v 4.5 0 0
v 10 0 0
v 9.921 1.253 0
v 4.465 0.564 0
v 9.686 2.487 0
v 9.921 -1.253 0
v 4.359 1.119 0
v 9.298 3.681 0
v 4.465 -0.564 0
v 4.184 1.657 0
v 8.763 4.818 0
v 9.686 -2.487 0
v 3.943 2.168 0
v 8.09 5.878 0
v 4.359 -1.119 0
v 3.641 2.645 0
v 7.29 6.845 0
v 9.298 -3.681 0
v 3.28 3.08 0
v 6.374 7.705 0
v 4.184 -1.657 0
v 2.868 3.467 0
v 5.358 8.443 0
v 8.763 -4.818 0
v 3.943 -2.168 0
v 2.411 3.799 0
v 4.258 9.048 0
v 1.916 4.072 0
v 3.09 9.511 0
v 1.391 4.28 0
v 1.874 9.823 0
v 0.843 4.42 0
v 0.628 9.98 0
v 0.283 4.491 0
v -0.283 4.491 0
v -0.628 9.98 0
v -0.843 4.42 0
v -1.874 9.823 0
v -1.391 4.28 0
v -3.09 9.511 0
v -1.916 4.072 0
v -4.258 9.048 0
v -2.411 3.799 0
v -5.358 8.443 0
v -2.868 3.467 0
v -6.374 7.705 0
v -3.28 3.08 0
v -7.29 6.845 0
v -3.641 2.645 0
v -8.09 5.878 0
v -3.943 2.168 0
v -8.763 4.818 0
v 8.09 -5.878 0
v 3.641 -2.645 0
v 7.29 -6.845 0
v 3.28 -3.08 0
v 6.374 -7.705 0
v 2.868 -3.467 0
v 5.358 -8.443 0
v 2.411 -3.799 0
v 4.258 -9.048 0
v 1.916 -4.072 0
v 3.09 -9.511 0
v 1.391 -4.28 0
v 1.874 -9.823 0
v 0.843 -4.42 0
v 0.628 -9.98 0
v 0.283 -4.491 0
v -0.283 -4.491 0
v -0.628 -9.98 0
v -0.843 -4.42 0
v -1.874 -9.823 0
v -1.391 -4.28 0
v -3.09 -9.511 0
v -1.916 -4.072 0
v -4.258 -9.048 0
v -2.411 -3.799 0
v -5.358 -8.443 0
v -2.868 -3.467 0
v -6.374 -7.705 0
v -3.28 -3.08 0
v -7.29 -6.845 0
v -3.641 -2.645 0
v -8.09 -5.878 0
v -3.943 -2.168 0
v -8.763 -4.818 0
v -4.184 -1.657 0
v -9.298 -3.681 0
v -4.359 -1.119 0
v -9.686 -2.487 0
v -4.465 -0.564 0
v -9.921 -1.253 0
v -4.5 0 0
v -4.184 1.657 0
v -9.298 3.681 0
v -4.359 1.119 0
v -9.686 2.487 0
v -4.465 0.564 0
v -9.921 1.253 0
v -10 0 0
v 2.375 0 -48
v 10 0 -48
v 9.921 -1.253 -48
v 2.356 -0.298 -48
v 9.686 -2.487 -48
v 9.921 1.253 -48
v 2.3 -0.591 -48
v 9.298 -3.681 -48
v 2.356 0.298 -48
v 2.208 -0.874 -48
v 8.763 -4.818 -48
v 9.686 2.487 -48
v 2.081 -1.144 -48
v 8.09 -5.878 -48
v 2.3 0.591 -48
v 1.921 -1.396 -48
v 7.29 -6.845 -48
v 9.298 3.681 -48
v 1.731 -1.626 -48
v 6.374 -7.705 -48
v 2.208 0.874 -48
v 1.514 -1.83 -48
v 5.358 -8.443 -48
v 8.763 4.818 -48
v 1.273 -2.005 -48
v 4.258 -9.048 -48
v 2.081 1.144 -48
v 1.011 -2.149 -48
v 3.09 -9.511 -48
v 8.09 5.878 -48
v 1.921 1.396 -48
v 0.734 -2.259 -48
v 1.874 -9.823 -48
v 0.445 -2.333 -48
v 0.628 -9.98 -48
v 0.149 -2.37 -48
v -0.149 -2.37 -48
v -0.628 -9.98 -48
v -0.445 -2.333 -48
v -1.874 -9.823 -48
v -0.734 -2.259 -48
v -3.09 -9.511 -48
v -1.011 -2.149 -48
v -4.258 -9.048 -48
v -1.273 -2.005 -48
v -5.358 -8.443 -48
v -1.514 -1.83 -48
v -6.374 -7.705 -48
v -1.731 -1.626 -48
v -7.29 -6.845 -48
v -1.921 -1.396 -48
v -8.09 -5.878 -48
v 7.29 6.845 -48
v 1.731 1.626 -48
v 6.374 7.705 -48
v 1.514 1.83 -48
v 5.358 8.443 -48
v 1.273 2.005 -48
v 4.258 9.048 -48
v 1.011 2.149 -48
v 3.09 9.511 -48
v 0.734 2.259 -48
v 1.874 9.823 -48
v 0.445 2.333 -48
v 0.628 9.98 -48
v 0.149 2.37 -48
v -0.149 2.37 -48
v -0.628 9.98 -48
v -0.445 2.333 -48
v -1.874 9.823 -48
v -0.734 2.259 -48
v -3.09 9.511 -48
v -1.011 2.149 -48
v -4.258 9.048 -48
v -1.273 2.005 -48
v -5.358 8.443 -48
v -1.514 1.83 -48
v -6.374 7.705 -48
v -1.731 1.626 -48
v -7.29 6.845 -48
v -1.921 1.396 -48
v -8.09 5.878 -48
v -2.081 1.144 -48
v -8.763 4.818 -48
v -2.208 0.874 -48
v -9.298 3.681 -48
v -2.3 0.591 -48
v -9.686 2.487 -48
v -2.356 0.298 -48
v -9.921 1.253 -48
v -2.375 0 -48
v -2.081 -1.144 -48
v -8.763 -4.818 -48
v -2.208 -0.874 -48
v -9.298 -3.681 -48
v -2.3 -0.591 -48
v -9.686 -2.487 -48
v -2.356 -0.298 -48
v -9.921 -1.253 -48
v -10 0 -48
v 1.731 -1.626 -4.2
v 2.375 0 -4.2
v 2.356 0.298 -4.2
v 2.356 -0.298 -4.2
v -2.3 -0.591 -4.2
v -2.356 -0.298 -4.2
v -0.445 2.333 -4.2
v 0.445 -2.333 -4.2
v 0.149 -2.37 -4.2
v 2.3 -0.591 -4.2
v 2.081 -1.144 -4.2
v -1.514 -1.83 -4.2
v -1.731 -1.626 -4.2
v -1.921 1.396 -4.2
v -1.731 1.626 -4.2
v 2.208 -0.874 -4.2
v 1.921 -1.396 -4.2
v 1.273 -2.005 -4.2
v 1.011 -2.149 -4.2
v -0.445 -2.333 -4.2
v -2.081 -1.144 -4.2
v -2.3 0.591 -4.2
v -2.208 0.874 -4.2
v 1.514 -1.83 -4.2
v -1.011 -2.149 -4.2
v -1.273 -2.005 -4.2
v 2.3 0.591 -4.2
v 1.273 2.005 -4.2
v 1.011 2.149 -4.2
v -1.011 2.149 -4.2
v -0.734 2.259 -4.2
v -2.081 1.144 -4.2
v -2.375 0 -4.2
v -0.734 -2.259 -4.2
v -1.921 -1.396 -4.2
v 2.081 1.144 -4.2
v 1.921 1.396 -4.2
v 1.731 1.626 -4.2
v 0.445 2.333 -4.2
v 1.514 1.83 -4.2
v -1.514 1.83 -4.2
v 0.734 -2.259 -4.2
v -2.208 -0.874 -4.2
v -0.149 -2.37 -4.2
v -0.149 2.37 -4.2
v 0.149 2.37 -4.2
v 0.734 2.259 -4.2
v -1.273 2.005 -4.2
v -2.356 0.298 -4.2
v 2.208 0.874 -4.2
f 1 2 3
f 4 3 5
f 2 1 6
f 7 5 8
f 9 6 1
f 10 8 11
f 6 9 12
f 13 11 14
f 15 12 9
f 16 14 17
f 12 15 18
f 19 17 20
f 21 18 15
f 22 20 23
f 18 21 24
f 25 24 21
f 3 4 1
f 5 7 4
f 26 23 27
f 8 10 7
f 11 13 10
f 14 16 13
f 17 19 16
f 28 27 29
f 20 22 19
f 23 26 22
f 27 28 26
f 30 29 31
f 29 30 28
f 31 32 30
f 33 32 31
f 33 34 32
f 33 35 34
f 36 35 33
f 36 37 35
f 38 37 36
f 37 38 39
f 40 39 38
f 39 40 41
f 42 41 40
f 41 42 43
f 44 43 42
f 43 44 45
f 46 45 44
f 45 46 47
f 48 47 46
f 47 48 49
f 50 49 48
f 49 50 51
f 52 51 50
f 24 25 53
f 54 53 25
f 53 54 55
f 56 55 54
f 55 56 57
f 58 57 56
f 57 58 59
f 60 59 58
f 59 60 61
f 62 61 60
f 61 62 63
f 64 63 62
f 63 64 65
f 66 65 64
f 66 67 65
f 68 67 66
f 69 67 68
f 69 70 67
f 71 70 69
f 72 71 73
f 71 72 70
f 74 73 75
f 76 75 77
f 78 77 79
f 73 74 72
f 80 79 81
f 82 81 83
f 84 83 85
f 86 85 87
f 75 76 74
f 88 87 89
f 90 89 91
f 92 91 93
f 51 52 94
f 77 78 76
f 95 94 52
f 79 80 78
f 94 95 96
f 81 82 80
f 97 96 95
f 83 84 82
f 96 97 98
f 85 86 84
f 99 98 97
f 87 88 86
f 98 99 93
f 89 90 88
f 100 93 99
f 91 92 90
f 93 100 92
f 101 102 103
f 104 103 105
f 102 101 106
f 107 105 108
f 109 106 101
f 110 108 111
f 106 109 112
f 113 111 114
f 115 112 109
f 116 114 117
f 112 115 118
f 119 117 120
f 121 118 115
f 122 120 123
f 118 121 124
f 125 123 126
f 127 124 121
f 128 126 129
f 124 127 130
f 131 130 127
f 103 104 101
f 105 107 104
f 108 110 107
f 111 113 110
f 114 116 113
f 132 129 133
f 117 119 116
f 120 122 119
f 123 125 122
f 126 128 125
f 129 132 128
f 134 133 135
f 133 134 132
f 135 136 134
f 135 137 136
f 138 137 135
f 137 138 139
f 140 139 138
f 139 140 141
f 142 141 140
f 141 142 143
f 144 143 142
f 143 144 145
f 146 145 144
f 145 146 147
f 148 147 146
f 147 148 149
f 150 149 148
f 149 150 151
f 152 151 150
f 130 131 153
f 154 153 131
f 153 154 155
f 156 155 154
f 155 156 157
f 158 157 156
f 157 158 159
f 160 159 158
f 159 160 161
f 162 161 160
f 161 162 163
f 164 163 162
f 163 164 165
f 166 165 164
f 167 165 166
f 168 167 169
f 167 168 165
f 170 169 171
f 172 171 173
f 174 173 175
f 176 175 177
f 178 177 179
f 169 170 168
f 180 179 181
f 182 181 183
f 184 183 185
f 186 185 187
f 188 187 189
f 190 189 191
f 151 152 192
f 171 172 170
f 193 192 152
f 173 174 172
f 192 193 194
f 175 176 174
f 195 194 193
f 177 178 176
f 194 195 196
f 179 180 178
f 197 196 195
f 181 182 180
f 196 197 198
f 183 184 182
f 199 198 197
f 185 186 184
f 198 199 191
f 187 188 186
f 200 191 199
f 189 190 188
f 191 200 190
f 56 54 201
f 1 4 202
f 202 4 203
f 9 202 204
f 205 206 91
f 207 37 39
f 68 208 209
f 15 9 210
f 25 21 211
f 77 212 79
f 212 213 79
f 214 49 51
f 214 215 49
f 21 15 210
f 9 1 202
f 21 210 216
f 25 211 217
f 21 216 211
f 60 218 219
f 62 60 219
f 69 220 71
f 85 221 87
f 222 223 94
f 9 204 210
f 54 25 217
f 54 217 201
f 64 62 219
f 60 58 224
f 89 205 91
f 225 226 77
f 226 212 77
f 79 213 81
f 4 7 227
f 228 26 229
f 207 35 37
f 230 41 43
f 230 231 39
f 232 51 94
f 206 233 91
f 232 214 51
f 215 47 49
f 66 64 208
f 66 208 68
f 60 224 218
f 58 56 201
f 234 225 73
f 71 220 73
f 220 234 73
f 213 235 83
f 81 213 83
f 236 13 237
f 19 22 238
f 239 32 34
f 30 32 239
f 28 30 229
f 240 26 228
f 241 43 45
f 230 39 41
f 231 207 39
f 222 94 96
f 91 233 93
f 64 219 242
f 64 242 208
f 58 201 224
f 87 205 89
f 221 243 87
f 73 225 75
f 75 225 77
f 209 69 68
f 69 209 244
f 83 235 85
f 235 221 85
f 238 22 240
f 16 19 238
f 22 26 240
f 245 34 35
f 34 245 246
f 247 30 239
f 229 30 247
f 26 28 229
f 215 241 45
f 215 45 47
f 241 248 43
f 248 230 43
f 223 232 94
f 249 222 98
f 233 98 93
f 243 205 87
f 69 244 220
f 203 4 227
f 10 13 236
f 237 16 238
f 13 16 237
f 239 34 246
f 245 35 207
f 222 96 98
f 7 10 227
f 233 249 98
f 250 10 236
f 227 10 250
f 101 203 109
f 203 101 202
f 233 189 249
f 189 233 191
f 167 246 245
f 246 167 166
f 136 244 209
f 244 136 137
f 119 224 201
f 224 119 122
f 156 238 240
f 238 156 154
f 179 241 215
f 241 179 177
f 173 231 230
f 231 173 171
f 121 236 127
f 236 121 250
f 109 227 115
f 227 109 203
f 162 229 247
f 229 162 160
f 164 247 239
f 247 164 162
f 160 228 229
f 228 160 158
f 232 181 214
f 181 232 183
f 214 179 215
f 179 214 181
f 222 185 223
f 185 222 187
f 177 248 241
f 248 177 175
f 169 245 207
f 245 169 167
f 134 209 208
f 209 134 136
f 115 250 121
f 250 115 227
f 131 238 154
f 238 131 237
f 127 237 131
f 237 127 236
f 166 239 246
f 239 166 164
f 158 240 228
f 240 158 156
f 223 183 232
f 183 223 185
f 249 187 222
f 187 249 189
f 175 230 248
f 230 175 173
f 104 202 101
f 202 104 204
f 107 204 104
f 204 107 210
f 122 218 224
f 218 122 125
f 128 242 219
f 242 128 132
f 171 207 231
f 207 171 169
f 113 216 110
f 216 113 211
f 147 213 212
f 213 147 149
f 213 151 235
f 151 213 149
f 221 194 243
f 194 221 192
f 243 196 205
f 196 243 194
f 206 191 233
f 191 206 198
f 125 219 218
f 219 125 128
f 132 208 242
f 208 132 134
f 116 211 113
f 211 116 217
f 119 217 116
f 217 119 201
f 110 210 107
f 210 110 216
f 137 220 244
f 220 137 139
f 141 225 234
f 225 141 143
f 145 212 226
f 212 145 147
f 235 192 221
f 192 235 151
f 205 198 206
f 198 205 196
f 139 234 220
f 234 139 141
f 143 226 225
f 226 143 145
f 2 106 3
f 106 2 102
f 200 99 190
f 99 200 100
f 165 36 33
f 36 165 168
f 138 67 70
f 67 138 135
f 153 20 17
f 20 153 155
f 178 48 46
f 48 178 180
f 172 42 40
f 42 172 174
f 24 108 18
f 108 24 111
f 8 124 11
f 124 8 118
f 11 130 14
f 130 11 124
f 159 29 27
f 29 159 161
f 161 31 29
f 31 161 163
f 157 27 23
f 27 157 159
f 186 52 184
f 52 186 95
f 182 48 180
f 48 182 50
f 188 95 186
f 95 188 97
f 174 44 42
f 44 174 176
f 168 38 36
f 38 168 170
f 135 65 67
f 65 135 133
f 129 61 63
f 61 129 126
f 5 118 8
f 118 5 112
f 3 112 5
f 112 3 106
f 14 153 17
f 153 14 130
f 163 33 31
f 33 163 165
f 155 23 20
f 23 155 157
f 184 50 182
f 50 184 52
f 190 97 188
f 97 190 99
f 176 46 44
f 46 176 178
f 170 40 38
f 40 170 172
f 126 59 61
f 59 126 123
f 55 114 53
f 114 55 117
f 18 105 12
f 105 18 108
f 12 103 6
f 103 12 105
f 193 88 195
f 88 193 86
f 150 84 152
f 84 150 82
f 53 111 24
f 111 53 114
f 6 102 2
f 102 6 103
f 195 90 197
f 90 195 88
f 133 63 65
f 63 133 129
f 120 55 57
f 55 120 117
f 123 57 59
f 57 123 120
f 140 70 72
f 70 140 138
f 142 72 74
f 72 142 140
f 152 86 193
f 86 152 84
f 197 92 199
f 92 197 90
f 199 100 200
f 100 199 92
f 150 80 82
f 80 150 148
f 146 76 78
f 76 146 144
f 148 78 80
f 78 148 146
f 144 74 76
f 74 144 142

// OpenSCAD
$fn = 50;


difference() {
	union() {
		translate(v = [0, 0, -48.0000000000]) {
			cylinder(h = 48, r = 10.0000000000);
		}
		cylinder(h = 0, r = 20.0000000000);
	}
	union() {
		translate(v = [0, 0, 0]) {
			rotate(a = [0, 0, 0]) {
				difference() {
					union() {
						#translate(v = [0, 0, -48.0000000000]) {
							cylinder(h = 48, r = 2.2500000000);
						}
						#translate(v = [0, 0, -4.2000000000]) {
							cylinder(h = 4.2000000000, r = 10.0000000000, r1 = 2.3750000000, r2 = 4.5000000000);
						}
						#translate(v = [0, 0, -48.0000000000]) {
							cylinder(h = 48, r = 2.3750000000);
						}
						#translate(v = [0, 0, -48.0000000000]) {
							cylinder(h = 48, r = 2.2500000000);
						}
					}
					union();
				}
			}
		}
	}
}
